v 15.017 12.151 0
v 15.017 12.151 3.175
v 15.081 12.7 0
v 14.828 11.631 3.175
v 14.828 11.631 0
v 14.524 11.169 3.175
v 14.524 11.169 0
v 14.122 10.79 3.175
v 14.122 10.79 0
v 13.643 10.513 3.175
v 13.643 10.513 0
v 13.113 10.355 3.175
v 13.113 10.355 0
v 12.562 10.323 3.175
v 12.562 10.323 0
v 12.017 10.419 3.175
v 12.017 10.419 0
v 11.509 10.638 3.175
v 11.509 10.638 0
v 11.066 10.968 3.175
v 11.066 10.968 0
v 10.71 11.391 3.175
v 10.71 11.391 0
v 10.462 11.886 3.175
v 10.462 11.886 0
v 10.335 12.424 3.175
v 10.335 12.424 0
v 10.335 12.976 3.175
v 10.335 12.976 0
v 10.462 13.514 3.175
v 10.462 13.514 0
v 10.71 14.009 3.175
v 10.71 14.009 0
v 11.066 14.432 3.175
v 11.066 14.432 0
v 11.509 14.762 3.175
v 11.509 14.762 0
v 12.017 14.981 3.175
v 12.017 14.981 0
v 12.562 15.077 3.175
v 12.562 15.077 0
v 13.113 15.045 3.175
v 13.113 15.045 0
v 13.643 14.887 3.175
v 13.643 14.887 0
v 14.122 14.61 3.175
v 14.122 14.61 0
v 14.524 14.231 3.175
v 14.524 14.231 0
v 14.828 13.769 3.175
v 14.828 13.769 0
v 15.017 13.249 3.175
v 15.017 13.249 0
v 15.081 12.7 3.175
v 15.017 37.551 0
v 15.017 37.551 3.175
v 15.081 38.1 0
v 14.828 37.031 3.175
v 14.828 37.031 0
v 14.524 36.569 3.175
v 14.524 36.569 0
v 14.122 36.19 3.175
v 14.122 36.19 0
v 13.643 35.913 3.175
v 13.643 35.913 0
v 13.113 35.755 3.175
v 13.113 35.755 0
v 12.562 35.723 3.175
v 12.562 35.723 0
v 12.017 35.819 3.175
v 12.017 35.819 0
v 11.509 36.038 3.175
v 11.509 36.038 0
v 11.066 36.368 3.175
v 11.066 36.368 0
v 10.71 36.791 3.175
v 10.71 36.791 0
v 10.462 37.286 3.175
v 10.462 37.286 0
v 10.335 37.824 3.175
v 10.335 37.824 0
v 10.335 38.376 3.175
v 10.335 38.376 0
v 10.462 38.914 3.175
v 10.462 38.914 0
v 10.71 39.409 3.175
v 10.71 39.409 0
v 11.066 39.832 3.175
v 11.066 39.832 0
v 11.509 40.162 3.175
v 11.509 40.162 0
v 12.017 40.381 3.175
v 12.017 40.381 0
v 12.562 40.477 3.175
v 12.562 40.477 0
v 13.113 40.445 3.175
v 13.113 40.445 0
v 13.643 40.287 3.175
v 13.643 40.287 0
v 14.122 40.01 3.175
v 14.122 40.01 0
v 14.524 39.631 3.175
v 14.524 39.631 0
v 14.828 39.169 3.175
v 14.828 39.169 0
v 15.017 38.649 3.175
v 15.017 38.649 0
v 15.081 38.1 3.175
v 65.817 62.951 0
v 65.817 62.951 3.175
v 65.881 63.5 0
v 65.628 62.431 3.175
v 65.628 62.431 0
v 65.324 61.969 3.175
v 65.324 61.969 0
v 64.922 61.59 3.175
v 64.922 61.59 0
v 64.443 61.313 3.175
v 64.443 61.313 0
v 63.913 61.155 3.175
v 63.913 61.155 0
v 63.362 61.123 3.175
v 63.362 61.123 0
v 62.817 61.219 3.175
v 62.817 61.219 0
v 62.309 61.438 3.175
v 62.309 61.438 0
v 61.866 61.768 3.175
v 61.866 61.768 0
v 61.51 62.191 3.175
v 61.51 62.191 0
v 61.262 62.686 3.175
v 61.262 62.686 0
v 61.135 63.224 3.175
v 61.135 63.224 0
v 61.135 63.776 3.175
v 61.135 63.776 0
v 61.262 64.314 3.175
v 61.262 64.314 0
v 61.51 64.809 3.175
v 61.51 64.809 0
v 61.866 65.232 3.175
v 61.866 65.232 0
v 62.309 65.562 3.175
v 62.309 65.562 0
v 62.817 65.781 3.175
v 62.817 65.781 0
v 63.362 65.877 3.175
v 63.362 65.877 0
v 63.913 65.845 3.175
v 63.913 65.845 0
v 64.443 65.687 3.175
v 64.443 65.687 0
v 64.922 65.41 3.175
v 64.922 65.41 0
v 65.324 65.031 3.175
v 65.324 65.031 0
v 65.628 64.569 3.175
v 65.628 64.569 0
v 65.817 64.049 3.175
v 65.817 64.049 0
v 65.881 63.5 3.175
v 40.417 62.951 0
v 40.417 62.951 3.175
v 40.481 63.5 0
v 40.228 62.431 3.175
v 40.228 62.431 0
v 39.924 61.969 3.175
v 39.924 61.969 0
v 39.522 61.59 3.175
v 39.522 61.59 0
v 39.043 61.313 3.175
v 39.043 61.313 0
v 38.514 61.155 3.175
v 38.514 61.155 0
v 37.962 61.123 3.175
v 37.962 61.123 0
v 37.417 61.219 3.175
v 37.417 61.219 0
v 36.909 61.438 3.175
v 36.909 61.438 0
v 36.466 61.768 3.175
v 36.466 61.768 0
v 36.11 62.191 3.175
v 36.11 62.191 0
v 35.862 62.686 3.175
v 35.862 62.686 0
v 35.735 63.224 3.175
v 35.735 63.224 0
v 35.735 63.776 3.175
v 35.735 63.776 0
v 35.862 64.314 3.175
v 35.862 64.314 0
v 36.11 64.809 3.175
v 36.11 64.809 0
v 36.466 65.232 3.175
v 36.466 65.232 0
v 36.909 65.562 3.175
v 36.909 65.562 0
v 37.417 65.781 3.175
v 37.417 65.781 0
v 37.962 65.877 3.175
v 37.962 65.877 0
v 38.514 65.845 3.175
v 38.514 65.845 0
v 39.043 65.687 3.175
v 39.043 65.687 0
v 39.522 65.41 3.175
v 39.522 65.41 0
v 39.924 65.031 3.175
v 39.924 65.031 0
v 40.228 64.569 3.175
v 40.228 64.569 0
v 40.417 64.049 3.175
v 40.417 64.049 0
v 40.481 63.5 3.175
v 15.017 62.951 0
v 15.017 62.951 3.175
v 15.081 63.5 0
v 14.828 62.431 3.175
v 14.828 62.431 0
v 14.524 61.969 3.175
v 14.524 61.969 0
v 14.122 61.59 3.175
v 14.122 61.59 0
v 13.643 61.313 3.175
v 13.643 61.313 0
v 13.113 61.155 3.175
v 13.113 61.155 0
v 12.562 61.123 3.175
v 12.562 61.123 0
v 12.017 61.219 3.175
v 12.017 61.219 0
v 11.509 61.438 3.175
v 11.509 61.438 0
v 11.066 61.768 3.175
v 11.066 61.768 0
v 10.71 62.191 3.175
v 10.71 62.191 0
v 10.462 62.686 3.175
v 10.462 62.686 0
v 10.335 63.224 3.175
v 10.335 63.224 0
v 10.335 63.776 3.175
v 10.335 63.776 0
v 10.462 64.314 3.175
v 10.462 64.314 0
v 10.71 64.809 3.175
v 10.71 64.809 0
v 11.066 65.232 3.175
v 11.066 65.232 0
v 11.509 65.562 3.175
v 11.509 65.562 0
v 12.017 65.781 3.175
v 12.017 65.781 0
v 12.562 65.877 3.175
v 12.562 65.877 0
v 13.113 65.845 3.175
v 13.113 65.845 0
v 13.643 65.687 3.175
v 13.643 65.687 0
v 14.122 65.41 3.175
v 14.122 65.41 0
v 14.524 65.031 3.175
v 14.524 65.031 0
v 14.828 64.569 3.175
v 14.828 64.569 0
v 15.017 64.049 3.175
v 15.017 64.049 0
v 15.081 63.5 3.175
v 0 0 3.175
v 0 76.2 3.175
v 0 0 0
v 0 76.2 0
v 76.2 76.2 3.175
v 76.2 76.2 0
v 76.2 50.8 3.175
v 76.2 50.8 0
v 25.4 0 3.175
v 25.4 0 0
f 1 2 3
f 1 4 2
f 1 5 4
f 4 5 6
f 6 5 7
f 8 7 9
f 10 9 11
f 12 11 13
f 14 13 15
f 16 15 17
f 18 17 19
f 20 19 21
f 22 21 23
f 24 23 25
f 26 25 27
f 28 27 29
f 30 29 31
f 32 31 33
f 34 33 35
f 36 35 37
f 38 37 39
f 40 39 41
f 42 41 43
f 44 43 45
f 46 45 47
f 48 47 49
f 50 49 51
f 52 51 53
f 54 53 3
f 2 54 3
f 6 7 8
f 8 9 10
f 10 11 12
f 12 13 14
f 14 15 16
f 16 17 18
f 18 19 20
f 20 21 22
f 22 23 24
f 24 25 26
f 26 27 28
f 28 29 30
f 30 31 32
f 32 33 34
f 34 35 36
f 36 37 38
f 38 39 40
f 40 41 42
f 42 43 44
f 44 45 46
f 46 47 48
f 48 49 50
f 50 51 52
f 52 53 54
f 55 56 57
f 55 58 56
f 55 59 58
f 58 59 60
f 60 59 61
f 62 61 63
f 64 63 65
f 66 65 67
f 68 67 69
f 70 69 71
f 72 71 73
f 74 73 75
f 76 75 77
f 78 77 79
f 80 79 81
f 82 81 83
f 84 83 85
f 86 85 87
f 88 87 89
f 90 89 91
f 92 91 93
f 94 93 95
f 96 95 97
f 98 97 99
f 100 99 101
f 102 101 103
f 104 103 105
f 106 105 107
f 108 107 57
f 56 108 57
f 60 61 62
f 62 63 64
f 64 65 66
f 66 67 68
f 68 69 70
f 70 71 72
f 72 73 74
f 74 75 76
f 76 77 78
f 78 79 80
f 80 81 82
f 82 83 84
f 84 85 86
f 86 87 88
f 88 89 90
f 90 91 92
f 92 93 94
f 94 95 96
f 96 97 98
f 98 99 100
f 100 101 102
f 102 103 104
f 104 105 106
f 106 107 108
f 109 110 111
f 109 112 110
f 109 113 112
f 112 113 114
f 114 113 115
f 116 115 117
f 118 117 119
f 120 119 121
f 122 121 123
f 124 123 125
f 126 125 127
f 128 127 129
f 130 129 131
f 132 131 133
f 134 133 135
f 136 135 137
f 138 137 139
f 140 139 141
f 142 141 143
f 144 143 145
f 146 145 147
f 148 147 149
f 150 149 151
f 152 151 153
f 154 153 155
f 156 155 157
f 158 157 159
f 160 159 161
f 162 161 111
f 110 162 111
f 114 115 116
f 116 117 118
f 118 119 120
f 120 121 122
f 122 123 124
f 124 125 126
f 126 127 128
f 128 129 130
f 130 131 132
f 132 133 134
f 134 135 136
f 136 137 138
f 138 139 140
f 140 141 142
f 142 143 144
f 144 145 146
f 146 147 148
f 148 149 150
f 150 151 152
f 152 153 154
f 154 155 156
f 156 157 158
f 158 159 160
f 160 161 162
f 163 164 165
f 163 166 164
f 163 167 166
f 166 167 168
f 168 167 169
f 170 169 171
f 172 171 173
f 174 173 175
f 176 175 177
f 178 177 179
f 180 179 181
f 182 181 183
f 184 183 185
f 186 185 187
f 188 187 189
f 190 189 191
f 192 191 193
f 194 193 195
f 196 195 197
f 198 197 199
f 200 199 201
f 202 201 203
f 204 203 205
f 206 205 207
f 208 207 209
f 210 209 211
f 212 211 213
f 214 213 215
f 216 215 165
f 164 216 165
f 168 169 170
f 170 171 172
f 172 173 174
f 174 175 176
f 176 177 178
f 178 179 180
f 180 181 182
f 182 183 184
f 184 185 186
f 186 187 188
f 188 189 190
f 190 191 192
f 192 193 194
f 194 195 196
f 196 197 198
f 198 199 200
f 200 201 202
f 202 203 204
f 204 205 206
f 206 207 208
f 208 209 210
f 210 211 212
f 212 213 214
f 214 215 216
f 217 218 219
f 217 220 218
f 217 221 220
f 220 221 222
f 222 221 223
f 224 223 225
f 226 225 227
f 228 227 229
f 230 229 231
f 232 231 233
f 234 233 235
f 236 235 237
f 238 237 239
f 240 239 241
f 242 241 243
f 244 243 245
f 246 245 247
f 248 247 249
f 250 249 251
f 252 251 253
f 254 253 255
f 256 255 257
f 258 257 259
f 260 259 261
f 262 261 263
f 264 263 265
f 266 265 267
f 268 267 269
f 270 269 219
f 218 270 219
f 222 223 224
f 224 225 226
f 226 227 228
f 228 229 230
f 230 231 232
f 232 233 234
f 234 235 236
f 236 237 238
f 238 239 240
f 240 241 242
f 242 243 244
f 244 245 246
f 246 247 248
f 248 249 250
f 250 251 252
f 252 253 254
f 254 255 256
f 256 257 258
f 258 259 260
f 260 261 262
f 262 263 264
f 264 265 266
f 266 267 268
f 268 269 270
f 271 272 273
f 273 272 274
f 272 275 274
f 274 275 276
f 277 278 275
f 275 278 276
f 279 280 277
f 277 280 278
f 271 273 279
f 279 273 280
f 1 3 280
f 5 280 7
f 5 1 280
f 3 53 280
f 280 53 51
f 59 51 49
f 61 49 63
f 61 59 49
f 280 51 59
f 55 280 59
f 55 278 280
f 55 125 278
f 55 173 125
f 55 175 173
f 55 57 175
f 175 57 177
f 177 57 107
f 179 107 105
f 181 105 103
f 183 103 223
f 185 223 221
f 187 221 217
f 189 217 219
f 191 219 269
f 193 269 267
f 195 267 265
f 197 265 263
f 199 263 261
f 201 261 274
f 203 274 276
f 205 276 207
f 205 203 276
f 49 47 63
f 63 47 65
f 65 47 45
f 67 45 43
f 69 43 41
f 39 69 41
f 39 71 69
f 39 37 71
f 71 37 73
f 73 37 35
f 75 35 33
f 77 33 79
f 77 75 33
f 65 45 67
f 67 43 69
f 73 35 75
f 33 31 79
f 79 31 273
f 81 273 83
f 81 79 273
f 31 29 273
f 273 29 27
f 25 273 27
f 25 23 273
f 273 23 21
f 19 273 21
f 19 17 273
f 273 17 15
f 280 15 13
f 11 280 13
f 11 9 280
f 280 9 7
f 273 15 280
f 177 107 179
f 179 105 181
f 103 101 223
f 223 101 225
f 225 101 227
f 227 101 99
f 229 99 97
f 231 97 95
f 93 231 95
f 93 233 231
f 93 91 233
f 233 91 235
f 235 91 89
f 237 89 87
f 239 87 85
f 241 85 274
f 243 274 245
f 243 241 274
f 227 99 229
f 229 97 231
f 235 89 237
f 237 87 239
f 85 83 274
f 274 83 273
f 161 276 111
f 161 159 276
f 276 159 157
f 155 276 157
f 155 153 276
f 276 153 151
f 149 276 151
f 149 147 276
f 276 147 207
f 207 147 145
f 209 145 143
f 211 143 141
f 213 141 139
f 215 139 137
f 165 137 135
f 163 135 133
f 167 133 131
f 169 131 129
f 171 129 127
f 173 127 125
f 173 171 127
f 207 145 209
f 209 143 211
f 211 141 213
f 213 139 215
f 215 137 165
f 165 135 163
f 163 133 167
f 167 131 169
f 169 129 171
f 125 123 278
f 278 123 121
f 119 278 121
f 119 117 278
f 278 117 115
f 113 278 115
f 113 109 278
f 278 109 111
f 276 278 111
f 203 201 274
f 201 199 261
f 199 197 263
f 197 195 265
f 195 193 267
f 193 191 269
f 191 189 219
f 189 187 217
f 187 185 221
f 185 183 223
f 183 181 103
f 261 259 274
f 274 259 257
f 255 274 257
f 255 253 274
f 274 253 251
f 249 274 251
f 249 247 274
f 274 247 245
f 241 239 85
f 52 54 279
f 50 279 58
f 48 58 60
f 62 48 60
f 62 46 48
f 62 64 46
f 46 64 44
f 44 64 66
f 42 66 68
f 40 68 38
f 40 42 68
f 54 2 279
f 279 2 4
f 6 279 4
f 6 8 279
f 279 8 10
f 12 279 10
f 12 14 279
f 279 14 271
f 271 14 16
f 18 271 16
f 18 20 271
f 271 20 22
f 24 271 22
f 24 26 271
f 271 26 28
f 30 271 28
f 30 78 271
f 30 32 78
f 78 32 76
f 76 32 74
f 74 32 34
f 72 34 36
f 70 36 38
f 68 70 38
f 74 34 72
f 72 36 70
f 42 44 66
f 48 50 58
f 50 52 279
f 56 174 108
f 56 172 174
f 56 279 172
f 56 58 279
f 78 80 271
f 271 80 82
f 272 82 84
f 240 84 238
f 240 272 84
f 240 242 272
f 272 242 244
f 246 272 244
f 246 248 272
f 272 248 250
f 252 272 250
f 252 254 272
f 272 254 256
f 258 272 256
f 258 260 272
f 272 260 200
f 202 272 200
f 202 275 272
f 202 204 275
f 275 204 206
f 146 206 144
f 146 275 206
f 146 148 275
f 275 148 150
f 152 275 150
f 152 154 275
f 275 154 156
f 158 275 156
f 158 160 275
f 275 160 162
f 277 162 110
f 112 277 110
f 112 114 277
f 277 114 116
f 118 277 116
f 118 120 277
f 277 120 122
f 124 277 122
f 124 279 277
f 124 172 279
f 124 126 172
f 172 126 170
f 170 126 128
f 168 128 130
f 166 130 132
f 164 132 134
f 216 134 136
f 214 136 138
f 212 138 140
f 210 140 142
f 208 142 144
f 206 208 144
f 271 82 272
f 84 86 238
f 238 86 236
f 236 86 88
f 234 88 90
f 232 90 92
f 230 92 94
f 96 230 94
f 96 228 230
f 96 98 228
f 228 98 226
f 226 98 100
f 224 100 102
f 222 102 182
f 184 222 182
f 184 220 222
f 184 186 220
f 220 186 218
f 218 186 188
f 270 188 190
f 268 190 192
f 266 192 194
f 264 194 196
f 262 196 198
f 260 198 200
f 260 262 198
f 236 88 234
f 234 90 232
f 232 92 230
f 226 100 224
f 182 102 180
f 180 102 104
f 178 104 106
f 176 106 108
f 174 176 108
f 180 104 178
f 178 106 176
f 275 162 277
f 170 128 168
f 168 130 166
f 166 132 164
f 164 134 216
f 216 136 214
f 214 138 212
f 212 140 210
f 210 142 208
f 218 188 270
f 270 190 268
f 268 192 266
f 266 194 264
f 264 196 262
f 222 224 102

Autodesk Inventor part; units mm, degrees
ref_plane "YZ Plane" through (0, 0, 0) normal (1, 0, 0) x (0, 1, 0)
ref_plane "XZ Plane" through (0, 0, 0) normal (0, 1, 0) x (-1, 0, 0)
ref_plane "XY Plane" through (0, 0, 0) normal (0, 0, 1) x (1, 0, 0)
sketch "Sketch1" plane through (0, 0, 0) normal (0, 0, 1) x (1, 0, 0)
  line L0 (0, 0) -> (25.4, 0)
  line L1 (25.4, 0) -> (76.2, 50.8)
  line L2 (76.2, 50.8) -> (76.2, 76.2)
  line L3 (76.2, 76.2) -> (0, 76.2)
  line L4 (0, 76.2) -> (0, 0)
  dimension "d0" = 76.2
  dimension "d1" = 76.2
  dimension "d2" = 25.4
  dimension "d3" = 25.4
extrude "Extrusion1" add sketch "Sketch1" along normal blind 3.175
sketch "Sketch2" plane through (0, 0, 3.175) normal (0, 0, 1) x (1, 0, 0)
  line L0 (0, 0) -> (0, 76.2) projected
  line L1 (0, 76.2) -> (76.2, 76.2) projected
  circle A0 centre (12.7, 63.5) radius 2.3813
  dimension "d6" = 4.7625
  dimension "d7" = 12.7
  dimension "d8" = 12.7
extrude "Extrusion2" cut sketch "Sketch2" against normal up to next
pattern_linear "Rectangular Pattern1" count 4 spacing 25.4 along (1, 0, 0) of "Extrusion2"
pattern_linear "Rectangular Pattern2" count 4 spacing 25.4 along (0, -1, 0) of "Extrusion2"
properties part number "Frame_VerticalAngle_Plate" material "Aluminum-6061"
